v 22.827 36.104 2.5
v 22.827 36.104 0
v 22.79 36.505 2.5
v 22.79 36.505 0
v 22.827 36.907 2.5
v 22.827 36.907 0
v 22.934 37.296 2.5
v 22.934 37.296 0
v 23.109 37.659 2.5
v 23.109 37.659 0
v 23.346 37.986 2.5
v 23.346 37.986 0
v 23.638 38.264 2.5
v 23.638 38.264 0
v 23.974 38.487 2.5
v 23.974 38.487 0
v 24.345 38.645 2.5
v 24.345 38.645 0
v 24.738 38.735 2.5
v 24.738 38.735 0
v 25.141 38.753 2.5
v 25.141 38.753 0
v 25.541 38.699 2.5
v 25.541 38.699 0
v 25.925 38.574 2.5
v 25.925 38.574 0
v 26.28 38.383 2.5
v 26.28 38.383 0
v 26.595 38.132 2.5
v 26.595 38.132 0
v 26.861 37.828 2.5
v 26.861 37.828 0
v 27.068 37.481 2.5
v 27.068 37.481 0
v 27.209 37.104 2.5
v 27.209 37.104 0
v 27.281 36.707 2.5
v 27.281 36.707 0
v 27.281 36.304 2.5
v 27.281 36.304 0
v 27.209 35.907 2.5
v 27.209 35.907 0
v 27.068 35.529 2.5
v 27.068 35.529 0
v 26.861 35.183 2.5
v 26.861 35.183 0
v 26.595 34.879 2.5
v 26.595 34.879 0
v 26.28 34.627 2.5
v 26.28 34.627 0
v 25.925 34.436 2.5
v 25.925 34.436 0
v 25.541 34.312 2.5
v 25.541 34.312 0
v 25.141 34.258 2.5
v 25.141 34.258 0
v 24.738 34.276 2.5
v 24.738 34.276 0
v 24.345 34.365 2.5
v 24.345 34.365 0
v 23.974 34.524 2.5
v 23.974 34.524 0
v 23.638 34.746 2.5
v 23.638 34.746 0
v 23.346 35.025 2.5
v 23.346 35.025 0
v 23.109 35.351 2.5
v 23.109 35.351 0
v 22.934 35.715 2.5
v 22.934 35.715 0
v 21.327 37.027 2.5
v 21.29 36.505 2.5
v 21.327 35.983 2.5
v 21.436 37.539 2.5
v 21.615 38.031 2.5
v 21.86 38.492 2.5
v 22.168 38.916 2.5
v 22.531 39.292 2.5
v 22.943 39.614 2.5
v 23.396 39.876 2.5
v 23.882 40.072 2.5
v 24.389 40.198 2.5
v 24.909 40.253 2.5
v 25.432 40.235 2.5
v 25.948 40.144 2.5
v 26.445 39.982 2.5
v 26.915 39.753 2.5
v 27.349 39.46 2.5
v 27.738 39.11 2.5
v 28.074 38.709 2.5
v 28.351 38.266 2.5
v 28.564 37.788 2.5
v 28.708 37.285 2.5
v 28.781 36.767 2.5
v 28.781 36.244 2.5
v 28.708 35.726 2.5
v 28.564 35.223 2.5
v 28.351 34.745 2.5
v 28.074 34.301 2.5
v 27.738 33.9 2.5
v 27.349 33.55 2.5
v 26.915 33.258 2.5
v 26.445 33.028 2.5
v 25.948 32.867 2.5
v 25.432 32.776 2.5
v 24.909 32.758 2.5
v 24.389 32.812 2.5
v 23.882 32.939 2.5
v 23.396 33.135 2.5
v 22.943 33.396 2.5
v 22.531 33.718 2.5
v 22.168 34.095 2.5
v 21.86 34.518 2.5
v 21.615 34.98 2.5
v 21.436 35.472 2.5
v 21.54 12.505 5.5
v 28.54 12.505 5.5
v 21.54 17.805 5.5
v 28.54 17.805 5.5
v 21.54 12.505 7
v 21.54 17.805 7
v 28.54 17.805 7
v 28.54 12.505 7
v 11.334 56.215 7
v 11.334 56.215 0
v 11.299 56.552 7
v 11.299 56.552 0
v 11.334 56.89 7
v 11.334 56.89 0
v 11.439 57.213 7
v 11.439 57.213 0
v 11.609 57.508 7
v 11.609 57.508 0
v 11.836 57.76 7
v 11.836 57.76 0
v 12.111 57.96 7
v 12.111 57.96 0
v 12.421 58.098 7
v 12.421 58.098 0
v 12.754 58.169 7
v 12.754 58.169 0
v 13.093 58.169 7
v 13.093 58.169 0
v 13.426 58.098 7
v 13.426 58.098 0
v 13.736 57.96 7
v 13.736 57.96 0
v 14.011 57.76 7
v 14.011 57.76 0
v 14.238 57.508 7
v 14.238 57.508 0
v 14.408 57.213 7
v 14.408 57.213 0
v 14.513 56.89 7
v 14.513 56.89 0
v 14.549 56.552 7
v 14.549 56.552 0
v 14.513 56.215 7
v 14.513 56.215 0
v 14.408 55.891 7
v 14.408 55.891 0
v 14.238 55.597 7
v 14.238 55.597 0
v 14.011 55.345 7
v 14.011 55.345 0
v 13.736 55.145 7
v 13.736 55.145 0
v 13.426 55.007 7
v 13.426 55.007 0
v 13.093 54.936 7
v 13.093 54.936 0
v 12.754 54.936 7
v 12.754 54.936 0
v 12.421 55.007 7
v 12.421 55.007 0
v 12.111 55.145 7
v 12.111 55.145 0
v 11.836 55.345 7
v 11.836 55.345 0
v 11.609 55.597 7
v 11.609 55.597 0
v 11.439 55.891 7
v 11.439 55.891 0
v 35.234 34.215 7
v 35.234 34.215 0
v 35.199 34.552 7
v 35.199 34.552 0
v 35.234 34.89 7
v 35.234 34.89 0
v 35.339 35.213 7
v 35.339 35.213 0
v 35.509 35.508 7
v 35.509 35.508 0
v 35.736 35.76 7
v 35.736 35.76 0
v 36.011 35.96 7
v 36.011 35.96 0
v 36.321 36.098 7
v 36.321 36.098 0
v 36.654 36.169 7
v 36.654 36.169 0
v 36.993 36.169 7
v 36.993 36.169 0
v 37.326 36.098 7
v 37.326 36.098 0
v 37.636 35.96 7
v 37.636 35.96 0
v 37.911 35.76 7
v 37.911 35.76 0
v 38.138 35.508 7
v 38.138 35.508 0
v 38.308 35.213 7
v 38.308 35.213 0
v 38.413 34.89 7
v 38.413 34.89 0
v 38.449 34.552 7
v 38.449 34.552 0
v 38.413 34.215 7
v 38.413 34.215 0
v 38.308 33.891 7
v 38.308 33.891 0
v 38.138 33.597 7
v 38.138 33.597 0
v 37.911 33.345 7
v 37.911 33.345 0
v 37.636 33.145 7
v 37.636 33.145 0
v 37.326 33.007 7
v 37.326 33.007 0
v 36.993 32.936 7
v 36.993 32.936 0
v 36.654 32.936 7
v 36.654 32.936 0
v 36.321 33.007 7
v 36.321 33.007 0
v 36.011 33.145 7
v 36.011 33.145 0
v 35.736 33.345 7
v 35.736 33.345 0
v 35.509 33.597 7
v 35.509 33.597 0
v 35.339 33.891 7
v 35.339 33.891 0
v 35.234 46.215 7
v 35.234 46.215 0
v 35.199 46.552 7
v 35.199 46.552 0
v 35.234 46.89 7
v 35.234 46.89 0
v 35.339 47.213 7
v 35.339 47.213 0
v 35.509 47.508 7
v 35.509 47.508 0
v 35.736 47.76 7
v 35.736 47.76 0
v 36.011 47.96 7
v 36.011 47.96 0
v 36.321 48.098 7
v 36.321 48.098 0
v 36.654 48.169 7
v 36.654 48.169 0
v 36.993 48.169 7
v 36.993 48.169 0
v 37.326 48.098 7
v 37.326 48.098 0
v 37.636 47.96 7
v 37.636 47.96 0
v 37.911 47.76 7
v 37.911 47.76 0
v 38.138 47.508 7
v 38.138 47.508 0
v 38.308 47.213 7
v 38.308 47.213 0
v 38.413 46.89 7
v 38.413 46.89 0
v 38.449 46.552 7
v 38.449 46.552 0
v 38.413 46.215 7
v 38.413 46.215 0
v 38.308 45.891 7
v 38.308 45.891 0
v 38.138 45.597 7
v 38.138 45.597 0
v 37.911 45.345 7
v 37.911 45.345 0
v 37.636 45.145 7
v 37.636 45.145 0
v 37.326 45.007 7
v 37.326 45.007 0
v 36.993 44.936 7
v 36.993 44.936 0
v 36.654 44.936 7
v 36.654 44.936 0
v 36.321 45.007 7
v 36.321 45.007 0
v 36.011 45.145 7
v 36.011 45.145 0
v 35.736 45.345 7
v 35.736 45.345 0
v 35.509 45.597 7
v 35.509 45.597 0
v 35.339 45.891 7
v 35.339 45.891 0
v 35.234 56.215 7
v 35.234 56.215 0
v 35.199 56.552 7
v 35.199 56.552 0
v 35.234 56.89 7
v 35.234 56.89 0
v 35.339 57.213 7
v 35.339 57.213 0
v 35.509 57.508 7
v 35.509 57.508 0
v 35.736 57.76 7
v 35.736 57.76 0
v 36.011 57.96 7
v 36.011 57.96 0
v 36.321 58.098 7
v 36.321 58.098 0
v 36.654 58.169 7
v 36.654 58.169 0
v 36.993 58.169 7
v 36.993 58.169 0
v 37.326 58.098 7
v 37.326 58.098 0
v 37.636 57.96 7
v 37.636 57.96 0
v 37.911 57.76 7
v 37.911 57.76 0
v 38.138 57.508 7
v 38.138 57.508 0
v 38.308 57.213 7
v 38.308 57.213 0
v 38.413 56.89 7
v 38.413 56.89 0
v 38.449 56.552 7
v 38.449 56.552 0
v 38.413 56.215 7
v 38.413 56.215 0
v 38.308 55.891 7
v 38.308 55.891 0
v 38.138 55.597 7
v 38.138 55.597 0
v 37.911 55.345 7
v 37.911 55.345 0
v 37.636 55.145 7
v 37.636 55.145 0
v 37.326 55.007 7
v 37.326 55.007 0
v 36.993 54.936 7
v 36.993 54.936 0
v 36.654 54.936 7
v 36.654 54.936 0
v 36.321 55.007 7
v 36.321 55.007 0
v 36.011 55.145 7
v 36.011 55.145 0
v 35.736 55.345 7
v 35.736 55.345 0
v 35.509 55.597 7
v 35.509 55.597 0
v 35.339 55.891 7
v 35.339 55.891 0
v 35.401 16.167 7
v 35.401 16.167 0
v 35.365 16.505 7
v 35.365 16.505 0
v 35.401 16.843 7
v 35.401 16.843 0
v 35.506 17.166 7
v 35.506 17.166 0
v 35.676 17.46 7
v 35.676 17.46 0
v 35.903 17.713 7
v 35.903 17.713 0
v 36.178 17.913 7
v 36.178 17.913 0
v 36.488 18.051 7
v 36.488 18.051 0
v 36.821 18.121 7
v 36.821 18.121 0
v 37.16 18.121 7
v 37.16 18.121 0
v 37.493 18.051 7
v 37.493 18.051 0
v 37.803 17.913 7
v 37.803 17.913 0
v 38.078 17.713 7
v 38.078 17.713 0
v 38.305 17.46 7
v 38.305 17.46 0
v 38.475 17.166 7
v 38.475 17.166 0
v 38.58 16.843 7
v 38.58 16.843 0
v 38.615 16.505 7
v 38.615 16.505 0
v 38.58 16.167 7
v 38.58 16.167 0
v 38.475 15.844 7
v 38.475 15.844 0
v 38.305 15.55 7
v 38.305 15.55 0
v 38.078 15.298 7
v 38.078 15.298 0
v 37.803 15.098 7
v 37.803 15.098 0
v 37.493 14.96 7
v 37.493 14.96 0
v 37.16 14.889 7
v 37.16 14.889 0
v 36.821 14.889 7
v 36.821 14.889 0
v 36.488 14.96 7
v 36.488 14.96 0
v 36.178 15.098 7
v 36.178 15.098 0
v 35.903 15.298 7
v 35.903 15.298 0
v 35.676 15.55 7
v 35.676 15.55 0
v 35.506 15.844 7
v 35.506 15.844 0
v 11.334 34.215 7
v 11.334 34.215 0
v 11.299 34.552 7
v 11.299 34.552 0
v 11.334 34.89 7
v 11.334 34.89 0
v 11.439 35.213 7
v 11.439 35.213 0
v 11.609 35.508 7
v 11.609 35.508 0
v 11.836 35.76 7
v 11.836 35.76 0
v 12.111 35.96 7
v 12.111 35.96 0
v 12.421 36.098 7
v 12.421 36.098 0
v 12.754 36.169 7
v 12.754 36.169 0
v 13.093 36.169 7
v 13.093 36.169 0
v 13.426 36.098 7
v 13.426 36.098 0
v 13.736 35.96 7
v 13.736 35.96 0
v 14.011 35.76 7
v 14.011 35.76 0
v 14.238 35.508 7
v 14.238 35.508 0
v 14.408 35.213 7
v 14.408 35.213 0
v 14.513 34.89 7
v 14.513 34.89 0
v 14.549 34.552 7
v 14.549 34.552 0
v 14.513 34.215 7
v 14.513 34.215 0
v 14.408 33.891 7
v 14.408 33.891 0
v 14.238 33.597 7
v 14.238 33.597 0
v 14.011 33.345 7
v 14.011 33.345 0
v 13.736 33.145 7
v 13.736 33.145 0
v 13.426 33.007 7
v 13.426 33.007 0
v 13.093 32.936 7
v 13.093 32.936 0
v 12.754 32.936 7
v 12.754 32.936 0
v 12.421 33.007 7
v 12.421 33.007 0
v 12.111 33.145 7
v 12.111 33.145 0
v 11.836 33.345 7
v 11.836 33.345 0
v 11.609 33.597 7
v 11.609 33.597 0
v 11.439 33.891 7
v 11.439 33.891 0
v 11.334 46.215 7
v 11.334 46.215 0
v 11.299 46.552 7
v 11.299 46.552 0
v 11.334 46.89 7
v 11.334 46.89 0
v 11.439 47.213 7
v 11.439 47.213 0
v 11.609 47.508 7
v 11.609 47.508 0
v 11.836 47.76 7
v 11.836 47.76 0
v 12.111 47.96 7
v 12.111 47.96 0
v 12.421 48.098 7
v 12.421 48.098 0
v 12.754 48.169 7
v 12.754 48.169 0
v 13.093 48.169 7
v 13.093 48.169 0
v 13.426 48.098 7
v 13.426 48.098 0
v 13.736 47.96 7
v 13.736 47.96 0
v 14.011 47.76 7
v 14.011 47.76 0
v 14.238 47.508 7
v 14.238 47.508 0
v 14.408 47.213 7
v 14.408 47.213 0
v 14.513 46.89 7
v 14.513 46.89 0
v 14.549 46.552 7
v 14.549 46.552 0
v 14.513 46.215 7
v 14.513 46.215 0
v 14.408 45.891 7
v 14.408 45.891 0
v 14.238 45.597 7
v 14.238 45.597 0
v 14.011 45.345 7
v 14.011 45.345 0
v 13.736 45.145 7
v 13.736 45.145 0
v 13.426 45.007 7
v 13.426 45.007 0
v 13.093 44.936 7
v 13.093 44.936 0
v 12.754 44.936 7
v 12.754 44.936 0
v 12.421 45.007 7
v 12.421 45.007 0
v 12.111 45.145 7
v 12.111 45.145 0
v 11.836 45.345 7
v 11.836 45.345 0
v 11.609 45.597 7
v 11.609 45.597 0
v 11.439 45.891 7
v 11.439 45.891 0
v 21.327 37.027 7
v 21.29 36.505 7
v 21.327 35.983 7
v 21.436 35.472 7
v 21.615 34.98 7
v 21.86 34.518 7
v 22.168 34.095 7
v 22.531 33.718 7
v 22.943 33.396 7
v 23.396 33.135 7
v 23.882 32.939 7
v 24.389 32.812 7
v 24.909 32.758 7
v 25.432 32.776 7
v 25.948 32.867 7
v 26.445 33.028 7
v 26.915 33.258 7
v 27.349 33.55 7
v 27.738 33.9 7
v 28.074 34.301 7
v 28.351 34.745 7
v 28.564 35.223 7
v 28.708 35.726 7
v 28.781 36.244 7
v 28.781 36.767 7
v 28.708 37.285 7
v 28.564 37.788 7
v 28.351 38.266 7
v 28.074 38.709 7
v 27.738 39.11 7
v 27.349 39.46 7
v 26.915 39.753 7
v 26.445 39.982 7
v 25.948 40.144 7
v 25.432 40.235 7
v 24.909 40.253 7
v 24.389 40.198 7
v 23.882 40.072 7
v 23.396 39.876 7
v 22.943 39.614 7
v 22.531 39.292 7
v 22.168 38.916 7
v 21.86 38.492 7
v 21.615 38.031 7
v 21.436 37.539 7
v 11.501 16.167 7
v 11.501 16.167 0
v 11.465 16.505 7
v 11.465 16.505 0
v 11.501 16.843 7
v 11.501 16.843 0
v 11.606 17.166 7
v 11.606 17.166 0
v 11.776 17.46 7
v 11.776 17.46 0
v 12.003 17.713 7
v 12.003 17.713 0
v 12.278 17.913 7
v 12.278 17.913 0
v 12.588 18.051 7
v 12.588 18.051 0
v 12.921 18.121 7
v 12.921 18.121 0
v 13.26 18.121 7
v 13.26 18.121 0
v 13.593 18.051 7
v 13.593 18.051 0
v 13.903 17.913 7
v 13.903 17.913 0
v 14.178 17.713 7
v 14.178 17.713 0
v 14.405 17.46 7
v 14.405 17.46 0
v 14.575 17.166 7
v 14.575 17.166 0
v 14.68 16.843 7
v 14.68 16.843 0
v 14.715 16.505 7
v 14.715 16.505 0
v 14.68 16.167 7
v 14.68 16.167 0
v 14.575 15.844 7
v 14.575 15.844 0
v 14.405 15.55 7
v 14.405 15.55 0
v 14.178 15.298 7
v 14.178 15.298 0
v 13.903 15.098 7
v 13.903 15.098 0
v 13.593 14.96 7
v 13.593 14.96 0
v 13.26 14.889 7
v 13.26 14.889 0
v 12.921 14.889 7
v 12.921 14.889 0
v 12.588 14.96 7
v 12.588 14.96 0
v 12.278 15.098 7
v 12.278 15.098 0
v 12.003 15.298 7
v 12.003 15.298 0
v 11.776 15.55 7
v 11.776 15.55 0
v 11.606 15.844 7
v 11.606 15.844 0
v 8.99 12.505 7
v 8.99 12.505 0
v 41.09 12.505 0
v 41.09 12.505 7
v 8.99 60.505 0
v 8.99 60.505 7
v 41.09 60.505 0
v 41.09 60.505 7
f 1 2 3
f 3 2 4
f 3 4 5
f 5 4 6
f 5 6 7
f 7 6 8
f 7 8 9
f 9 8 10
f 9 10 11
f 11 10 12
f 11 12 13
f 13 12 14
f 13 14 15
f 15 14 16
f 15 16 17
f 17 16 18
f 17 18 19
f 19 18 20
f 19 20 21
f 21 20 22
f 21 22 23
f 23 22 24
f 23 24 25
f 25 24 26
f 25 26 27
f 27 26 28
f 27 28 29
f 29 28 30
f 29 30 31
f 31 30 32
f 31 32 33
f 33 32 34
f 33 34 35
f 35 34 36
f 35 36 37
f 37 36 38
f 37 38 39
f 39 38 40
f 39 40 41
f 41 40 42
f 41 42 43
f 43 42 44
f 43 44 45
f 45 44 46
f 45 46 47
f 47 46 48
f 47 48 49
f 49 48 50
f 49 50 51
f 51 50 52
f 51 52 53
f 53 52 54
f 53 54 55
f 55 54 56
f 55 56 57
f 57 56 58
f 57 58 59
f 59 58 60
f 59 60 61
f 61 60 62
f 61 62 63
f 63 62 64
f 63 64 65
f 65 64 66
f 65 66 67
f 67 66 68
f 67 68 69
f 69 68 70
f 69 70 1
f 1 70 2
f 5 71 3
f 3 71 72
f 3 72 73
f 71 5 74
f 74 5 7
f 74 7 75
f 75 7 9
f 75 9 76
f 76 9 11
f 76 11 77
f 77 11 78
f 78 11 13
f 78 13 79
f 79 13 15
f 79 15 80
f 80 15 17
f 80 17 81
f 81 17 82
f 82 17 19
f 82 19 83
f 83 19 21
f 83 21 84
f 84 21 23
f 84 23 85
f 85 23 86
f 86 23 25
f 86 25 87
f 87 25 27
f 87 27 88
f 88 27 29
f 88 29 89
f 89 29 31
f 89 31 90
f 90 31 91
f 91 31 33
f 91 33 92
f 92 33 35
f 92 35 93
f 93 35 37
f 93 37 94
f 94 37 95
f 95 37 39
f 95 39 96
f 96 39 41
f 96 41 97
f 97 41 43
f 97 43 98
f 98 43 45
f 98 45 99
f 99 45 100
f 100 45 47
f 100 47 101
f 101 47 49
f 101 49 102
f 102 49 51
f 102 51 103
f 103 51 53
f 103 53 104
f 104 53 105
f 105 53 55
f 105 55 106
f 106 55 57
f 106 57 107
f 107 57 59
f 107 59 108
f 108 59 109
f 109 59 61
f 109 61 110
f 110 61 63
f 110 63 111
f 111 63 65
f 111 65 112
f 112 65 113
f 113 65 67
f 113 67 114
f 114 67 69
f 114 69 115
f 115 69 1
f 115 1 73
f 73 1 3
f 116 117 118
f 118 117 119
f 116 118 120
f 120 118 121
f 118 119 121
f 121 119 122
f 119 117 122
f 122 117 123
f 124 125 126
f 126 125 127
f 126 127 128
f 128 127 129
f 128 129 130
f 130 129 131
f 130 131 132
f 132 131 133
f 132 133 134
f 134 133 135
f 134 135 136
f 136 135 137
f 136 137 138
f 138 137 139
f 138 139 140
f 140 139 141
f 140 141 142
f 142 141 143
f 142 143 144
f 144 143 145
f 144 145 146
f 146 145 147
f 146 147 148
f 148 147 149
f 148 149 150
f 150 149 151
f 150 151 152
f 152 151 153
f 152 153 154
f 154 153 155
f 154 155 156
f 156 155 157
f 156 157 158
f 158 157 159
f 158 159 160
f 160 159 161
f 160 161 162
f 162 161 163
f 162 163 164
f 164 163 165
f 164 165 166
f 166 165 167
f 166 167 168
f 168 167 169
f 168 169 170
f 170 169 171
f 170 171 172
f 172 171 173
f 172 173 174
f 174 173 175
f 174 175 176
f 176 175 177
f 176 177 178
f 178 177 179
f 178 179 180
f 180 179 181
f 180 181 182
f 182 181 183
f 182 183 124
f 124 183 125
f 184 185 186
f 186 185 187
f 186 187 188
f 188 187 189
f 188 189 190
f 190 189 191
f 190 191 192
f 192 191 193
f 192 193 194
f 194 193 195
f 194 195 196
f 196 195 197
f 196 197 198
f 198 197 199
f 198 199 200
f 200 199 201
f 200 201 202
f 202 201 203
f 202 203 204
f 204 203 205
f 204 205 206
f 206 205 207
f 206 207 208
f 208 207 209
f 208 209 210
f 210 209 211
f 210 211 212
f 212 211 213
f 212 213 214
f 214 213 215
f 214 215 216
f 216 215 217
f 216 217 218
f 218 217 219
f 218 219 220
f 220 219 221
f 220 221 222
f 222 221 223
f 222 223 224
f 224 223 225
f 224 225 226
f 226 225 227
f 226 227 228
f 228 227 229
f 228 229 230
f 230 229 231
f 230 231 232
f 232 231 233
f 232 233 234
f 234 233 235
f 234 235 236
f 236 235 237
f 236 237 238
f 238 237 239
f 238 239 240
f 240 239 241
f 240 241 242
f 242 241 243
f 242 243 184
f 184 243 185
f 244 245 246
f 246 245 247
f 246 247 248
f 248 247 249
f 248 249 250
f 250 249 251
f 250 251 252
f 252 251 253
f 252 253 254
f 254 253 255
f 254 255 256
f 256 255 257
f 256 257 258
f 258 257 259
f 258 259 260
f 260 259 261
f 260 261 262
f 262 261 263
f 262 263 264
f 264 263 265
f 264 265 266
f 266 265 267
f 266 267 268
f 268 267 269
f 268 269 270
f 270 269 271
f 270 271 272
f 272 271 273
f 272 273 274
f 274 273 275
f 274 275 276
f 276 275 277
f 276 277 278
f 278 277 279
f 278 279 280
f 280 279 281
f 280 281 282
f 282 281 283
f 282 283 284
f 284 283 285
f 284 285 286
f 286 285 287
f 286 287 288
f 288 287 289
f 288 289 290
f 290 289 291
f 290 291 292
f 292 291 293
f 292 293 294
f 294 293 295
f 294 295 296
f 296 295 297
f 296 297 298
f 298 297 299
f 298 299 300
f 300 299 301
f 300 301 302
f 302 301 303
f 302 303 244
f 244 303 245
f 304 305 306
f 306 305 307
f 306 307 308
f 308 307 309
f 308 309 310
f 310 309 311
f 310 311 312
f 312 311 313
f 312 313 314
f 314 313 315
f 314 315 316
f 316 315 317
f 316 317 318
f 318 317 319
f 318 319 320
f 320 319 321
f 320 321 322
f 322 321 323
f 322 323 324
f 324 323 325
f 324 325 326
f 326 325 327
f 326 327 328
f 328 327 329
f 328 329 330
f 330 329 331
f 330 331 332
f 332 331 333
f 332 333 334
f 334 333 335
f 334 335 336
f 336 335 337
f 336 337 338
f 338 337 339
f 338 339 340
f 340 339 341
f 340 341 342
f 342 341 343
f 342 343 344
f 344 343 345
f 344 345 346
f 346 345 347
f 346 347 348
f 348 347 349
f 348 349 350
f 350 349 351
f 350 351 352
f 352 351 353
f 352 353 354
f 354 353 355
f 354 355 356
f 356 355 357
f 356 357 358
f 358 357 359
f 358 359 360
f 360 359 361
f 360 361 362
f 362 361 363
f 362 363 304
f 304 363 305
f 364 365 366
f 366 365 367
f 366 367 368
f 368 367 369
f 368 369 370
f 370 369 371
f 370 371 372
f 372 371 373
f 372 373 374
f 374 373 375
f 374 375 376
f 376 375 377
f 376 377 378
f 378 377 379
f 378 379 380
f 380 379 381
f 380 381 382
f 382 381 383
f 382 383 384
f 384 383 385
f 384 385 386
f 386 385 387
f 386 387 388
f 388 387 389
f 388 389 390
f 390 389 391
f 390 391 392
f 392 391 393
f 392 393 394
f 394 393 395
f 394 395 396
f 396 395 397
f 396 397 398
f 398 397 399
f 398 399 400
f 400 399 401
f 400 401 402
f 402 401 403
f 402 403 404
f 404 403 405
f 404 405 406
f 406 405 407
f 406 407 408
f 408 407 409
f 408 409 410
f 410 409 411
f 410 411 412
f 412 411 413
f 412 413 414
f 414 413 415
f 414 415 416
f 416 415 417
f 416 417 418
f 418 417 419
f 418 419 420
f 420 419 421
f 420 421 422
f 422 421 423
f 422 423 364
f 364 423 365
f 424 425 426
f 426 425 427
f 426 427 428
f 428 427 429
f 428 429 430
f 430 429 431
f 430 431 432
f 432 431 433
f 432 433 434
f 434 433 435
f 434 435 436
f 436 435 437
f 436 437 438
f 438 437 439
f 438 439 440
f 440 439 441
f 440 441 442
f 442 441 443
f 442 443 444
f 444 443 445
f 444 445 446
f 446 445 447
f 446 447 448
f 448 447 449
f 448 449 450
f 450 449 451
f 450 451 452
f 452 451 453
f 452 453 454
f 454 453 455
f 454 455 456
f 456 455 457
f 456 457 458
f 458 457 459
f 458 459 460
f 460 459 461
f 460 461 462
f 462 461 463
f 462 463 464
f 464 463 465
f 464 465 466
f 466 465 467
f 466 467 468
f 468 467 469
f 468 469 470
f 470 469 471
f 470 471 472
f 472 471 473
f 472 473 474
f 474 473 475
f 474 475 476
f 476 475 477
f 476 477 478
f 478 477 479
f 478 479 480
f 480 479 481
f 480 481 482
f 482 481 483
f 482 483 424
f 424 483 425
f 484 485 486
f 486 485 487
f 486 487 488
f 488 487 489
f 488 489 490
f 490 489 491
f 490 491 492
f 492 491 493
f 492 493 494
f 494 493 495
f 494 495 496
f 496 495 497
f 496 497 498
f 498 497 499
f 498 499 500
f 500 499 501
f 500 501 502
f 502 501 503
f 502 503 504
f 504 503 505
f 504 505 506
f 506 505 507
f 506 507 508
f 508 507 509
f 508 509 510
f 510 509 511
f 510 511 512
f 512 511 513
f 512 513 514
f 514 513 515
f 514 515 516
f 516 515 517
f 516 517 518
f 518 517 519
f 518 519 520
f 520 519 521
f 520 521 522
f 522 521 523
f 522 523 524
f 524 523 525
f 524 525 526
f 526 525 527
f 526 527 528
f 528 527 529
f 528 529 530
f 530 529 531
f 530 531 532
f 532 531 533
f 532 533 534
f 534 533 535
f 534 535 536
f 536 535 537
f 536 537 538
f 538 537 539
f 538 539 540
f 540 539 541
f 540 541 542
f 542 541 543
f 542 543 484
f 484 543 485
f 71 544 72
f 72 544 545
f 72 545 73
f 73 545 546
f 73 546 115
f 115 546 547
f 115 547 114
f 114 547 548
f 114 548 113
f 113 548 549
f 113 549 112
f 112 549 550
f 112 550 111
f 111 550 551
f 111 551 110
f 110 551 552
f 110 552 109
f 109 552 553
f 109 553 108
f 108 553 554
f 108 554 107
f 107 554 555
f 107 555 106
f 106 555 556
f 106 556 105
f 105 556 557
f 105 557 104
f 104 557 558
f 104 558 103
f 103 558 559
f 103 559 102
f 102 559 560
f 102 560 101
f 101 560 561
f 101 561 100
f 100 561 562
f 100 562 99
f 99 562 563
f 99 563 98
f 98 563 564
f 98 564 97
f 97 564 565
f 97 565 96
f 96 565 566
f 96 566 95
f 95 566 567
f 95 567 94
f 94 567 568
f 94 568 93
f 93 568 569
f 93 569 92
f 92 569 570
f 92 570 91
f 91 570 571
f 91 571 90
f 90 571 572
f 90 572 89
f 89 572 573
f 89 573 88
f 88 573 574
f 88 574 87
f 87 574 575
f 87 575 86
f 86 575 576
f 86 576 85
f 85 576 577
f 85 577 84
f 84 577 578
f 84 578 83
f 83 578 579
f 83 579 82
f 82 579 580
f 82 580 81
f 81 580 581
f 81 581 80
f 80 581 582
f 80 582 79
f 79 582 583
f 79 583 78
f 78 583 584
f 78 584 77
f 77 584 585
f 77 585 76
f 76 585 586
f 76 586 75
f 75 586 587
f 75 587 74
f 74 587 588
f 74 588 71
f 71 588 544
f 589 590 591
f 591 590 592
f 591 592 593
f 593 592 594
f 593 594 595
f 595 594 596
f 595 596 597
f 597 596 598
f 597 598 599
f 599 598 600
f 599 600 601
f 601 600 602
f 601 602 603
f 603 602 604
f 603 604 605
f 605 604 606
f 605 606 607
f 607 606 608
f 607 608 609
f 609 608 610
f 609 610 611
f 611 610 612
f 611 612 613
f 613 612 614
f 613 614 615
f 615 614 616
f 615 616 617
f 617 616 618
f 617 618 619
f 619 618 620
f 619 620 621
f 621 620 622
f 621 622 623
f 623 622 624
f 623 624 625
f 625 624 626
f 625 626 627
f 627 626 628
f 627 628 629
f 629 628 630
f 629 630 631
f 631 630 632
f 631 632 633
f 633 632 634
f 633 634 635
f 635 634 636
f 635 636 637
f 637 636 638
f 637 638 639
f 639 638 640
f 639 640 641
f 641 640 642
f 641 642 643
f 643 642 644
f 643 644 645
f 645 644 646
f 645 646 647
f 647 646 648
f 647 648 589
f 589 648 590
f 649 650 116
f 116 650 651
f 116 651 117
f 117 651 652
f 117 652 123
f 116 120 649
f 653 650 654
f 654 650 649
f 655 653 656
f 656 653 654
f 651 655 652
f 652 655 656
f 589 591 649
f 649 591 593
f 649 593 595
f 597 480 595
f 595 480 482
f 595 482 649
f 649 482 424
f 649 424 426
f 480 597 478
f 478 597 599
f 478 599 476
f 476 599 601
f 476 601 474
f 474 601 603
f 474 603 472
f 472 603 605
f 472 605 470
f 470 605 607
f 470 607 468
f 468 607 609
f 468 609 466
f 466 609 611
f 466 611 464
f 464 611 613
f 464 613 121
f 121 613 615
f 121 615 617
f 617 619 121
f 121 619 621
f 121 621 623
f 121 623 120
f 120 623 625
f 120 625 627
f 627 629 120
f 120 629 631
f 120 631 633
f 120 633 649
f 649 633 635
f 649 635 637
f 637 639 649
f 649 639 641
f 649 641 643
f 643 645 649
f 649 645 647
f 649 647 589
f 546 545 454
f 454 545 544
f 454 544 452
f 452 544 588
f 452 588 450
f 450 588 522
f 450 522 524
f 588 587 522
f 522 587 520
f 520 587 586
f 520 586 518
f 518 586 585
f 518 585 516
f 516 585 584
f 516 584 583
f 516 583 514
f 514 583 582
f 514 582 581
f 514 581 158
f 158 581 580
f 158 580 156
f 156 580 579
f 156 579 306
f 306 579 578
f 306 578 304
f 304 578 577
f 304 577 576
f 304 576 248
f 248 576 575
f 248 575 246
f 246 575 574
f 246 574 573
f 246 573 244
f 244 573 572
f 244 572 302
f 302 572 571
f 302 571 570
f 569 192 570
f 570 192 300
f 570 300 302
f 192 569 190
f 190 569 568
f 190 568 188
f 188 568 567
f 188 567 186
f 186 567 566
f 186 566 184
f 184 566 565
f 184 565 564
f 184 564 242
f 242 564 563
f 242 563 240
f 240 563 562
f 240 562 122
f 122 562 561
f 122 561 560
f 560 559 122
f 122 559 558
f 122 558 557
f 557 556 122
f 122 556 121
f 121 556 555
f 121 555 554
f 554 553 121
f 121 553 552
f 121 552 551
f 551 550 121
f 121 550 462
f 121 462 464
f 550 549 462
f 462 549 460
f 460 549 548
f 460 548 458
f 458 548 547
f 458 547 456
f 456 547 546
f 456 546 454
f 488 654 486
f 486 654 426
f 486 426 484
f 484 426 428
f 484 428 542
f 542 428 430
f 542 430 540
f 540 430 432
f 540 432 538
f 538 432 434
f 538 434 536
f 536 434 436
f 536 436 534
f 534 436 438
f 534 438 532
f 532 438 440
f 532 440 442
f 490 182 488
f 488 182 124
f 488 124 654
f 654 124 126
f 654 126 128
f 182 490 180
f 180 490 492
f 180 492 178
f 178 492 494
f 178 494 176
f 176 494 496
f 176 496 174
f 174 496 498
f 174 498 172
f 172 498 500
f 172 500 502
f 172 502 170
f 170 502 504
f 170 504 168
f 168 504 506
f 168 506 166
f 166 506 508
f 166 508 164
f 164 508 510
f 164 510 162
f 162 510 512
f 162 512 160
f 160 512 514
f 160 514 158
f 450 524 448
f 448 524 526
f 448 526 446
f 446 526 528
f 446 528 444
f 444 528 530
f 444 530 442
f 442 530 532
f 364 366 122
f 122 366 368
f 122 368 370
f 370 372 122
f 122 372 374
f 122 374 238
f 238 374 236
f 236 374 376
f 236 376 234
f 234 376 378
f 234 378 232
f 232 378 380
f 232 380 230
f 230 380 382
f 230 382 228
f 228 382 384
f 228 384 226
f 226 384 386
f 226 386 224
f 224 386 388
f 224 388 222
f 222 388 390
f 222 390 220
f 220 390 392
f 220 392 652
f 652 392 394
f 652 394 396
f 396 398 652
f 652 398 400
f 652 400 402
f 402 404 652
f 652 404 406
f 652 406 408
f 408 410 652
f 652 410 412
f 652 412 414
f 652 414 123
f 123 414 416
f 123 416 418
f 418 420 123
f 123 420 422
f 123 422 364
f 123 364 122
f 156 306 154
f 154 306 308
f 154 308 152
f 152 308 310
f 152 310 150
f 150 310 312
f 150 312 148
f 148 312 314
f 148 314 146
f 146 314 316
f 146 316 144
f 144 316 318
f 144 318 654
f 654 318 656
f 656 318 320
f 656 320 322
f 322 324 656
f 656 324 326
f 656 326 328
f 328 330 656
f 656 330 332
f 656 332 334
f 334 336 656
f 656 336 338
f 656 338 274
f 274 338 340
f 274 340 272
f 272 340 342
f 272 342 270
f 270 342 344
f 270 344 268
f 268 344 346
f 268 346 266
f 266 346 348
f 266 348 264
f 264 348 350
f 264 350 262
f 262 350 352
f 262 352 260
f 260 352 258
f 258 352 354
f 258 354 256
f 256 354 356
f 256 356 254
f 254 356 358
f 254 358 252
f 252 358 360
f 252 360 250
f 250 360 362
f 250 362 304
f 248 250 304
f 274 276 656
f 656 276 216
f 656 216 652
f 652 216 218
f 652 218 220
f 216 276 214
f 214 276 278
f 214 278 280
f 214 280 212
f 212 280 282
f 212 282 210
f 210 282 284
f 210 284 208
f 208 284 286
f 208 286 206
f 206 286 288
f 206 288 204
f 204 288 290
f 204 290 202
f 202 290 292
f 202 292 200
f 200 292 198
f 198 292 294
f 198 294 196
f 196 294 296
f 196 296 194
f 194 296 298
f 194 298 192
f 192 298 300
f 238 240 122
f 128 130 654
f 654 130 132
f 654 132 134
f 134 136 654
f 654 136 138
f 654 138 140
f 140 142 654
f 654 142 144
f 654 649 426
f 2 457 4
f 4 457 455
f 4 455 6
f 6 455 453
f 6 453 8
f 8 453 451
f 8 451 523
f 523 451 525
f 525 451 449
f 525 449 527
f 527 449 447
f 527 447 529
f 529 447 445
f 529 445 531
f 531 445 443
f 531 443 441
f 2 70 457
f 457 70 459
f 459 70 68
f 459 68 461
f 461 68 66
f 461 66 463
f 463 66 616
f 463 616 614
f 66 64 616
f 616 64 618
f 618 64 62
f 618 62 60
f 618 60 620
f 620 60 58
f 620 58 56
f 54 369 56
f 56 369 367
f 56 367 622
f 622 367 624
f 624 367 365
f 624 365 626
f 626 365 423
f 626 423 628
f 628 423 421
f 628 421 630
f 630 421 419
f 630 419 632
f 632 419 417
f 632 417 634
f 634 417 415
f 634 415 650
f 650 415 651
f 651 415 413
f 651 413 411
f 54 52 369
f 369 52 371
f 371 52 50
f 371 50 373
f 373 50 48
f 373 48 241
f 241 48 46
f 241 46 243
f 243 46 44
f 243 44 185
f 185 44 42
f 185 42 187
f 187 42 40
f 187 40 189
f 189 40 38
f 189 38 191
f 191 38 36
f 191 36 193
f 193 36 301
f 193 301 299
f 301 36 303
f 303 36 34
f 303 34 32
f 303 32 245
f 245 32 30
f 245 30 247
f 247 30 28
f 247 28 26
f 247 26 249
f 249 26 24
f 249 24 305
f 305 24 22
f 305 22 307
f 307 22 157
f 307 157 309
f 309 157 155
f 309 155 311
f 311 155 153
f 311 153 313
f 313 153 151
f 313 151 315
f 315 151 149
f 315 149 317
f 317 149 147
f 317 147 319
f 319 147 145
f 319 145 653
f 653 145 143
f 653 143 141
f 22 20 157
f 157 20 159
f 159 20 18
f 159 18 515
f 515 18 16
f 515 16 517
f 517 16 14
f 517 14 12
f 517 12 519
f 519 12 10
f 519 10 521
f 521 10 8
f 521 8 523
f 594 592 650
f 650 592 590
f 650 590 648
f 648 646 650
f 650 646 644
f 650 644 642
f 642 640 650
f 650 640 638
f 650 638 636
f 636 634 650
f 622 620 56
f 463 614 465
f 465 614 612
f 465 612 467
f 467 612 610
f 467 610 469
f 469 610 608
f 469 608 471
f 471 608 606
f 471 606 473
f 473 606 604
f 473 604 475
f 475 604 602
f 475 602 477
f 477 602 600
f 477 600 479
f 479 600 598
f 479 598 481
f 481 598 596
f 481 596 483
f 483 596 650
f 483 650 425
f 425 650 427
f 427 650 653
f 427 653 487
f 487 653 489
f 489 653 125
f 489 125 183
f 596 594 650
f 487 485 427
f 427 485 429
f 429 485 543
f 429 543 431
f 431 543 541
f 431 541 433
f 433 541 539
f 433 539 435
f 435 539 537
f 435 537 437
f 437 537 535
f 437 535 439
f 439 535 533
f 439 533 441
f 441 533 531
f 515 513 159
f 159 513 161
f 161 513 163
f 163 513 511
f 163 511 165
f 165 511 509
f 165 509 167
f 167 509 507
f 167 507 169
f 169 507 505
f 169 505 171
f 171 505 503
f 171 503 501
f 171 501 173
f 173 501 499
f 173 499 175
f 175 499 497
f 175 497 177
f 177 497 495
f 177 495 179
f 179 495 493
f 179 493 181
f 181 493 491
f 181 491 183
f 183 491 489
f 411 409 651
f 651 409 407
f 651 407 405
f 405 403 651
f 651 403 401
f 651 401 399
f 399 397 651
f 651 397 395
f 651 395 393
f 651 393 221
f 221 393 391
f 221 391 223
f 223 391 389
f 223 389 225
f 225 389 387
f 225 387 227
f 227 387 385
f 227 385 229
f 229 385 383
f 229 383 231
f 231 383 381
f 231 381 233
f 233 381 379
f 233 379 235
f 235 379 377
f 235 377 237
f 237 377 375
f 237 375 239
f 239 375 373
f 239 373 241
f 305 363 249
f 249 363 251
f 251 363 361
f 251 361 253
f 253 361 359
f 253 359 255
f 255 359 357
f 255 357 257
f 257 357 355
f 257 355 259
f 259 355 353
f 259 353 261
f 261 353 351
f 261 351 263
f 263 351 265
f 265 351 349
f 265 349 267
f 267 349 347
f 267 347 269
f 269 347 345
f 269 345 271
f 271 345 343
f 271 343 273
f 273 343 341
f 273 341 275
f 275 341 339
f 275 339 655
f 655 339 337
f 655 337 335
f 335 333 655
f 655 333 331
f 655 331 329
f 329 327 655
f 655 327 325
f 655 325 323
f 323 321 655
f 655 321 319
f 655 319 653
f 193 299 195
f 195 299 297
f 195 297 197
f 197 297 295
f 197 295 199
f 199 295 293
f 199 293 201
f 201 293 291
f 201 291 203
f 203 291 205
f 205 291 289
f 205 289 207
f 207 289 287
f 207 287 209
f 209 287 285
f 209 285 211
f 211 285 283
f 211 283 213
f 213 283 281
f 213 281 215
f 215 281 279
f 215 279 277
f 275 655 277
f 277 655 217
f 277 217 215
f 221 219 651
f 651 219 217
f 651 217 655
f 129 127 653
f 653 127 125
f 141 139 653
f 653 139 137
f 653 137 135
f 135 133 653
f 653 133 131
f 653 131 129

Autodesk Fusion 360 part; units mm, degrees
sketch "Sketch1" plane through (0, 0, 0) normal (0, 0, 1) x (1, 0, 0)
  line L0 (8.9904, 12.5053) -> (41.0904, 12.5053)
  line L1 (41.0904, 12.5053) -> (41.0904, 60.5053)
  line L2 (41.0904, 60.5053) -> (8.9904, 60.5053)
  line L3 (8.9904, 60.5053) -> (8.9904, 12.5053)
  line L4 (41.0904, 60.5053) -> (8.9904, 60.5053)
  line L5 (8.9904, 60.5053) -> (8.9904, 12.5053)
  line L6 (8.9904, 12.5053) -> (41.0904, 12.5053)
  line L7 (41.0904, 12.5053) -> (41.0904, 60.5053)
  line L8 (8.9904, 12.5053) -> (41.0904, 12.5053)
  line L9 (41.0904, 12.5053) -> (41.0904, 60.5053)
  line L10 (41.0904, 60.5053) -> (8.9904, 60.5053)
  line L11 (8.9904, 60.5053) -> (8.9904, 12.5053)
  line L12 (8.9904, 12.5053) -> (13.0904, 12.5053)
  line L13 (13.0904, 12.5053) -> (13.0904, 16.5053)
  line L14 (13.0904, 16.5053) -> (8.9904, 16.5053)
  line L15 (8.9904, 16.5053) -> (8.9904, 12.5053)
  line L16 (41.0904, 12.5053) -> (36.9904, 12.5053)
  line L17 (36.9904, 12.5053) -> (36.9904, 16.5053)
  line L18 (36.9904, 16.5053) -> (41.0904, 16.5053)
  line L19 (41.0904, 16.5053) -> (41.0904, 12.5053)
  line L20 (8.9904, 12.5053) -> (25.0404, 12.5053)
  line L21 (25.0404, 12.5053) -> (25.0404, 36.5053)
  line L22 (25.0404, 36.5053) -> (8.9904, 36.5053)
  line L23 (8.9904, 36.5053) -> (8.9904, 12.5053)
  circle A0 centre (25.0404, 36.5053) radius 2.25
  line L24 (25.0404, 12.5053) -> (28.5404, 12.5053)
  line L25 (28.5404, 12.5053) -> (28.5404, 17.8053)
  line L26 (28.5404, 17.8053) -> (25.0404, 17.8053)
  line L27 (25.0404, 17.8053) -> (25.0404, 12.5053)
  line L28 (25.0404, 12.5053) -> (21.5404, 12.5053)
  line L29 (21.5404, 12.5053) -> (21.5404, 17.8053)
  line L30 (21.5404, 17.8053) -> (25.0404, 17.8053)
  line L31 (25.0404, 17.8053) -> (25.0404, 12.5053)
  circle A1 centre (12.9235, 34.5524) radius 1.625
  circle A2 centre (12.9235, 46.5524) radius 1.625
  circle A3 centre (12.9235, 56.5524) radius 1.625
  circle A4 centre (36.8235, 56.5524) radius 1.625
  circle A5 centre (36.8235, 46.5524) radius 1.625
  circle A6 centre (36.8235, 34.5524) radius 1.625
  circle A7 centre (36.9904, 16.5053) radius 1.625
  circle A8 centre (13.0904, 16.5053) radius 1.625
  circle A9 centre (25.0404, 36.5053) radius 3.75
  point P0 (12.9235, 16.5524)
  dimension "d1" = 32.1
  dimension "d2" = 48
  dimension "d5" = 4.1
  dimension "d6" = 4
  dimension "d8" = 4.1
  dimension "d9" = 4
  dimension "d17" = 16.05
  dimension "d18" = 24
  dimension "d20" = 4.5
  dimension "d21" = 3.5
  dimension "d22" = 5.3
  dimension "d23" = 3.5
  dimension "d24" = 5.3
  dimension "d31" = 3.25
  dimension "d32" = 3.25
  dimension "d33" = 3.25
  dimension "d34" = 3.25
  dimension "d35" = 3.25
  dimension "d36" = 3.25
  dimension "d37" = 3.25
  dimension "d38" = 3.25
  dimension "d45" = 7.5
extrude "Extrude8" add sketch "Sketch1" along normal blind 7 contours L0 L3 L5 L6 L8 L11 L12 L13 L14 L15 L20 L23 A8 | L0 L3 L5 L6 L8 L11 L13 L14 L20 L21 L22 L23 L29 L30 A8 A9 | L0 L1 L2 L3 L4 L5 L6 L7 L8 L9 L10 L11 L17 L18 L21 L22 L25 L26 A7 A9 | L0 L1 L6 L7 L8 L9 L16 L17 L18 L19 A7
extrude "Extrude9" add sketch "Sketch1" along normal blind 5.5 contours L0 L6 L8 L20 L21 L27 L28 L29 L30 L31 | L0 L6 L8 L21 L24 L25 L26 L27 L31
extrude "Extrude10" add sketch "Sketch1" along normal blind 2.5 contours L21 L22 A0 A9 | L21 L22 A0 A9
